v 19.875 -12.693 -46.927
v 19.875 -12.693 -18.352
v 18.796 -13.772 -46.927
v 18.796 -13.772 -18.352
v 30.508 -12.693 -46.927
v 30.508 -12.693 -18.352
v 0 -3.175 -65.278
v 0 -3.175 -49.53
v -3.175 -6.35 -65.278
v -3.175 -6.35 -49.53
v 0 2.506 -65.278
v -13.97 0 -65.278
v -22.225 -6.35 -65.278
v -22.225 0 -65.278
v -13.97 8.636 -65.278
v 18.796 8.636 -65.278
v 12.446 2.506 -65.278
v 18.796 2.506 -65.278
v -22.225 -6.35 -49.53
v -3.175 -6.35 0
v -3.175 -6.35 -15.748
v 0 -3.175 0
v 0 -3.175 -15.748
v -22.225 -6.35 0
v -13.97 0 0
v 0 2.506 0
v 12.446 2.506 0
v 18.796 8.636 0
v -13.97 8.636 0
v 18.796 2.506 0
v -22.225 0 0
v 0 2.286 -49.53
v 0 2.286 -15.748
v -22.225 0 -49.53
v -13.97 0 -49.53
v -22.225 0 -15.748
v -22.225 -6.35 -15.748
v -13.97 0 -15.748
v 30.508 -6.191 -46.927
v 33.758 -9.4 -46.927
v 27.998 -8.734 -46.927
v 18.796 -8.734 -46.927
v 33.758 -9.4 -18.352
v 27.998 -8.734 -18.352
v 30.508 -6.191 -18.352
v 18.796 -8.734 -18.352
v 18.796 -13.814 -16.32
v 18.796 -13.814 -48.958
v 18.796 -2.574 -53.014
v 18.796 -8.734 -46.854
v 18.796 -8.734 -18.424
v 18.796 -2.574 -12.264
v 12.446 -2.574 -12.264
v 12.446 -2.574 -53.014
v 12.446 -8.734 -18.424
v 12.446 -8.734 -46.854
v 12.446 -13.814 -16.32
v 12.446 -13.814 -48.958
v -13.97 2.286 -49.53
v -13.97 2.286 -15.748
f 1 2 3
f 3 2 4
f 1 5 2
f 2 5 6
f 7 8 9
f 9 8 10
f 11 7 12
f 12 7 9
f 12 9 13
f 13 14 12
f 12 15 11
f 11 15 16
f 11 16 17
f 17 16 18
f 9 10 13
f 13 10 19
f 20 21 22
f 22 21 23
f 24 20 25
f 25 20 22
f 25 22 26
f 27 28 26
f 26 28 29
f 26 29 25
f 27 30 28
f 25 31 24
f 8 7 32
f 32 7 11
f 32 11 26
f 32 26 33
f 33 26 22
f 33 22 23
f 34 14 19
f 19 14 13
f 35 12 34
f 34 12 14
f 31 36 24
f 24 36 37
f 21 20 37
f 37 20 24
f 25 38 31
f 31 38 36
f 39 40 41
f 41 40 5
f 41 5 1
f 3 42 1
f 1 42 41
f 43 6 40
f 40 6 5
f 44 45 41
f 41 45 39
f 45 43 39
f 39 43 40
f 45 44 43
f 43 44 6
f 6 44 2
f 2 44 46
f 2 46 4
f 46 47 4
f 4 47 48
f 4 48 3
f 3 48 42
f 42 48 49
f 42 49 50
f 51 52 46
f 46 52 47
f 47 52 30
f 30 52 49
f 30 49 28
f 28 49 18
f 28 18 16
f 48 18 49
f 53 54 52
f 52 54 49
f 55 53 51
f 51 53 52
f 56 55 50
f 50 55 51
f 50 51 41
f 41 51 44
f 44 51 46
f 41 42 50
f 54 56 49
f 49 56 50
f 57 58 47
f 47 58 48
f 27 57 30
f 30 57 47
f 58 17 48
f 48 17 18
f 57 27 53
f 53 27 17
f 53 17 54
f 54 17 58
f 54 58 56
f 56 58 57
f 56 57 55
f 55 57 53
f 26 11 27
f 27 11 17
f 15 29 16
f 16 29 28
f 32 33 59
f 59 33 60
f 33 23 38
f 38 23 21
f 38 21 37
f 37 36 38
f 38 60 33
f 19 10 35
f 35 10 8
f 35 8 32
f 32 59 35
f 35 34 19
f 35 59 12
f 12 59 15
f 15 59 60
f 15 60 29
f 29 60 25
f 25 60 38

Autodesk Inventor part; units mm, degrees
ref_plane "YZ Plane" through (0, 0, 0) normal (1, 0, 0) x (0, 1, 0)
ref_plane "XZ Plane" through (0, 0, 0) normal (0, 1, 0) x (-1, 0, 0)
ref_plane "XY Plane" through (0, 0, 0) normal (0, 0, 1) x (1, 0, 0)
sketch "Sketch1" plane through (0, 0, 0) normal (0, 1, 0) x (-1, 0, 0)
  line L0 (0, 0) -> (13.97, 0)
  line L1 (13.97, 0) -> (13.97, -15.748)
  line L2 (13.97, -15.748) -> (0, -15.748)
  line L3 (0, -15.748) -> (0, 0)
  line L4 (13.97, -49.53) -> (0, -49.53)
  line L5 (0, -49.53) -> (0, -65.278)
  line L6 (0, -65.278) -> (13.97, -65.278)
  line L7 (13.97, -65.278) -> (13.97, -49.53)
  dimension "d0" = 13.97
  dimension "d1" = 15.748
  dimension "d2" = 15.748
  dimension "d3" = 33.782
extrude "Extrusion1" add sketch "Sketch1" along normal blind 2.286
sketch "Sketch2" plane through (0, 2.286, 0) normal (0, 1, 0) x (1, 0, 0)
  line L0 (-13.97, 15.748) -> (-13.97, 0) projected
  line L1 (-13.97, 0) -> (0, 0)
  line L2 (0, 0) -> (0, 65.278)
  line L3 (0, 65.278) -> (-13.97, 65.278)
  line L4 (-13.97, 65.278) -> (-13.97, 0)
  point P0 (0, 0)
extrude "Extrusion2" add sketch "Sketch2" along normal blind 6.35
sketch "Sketch3" plane through (0, 0, -49.53) normal (1, 0, 0) x (0, 0, -1)
  line L0 (-49.53, 8.636) -> (15.748, 8.636) projected
  line L1 (15.748, 0) -> (15.748, 8.636) projected
  line L2 (-49.53, 8.636) -> (15.748, 8.636)
  line L3 (15.748, 8.636) -> (15.748, 2.5059)
  line L4 (15.748, 2.5059) -> (-49.53, 2.5059)
  line L5 (-49.53, 2.5059) -> (-49.53, 8.636)
  point P0 (-49.53, 0)
extrude "Extrusion3" add sketch "Sketch3" along normal blind 12.446
sketch "Sketch4" plane through (12.446, 0, -49.53) normal (1, 0, 0) x (0, 0, -1)
  line L0 (15.748, 8.636) -> (-49.53, 8.636) projected
  line L1 (-49.53, 8.636) -> (15.748, 8.636)
  line L2 (15.748, 8.636) -> (15.748, 2.5059)
  line L3 (15.748, 2.5059) -> (-49.53, 2.5059)
  line L4 (-49.53, 0) -> (-49.53, 8.636) projected
  line L5 (-49.53, 8.636) -> (-49.53, 2.5059)
  line L6 (-49.53, 2.5059) -> (-24.0466, 2.5059) construction
  line L7 (-16.891, 8.636) -> (-16.891, -118.364) construction
  line L8 (15.748, 2.5059) -> (-49.53, 2.5059) projected
  line L9 (-49.53, 2.5059) -> (-16.891, -30.1331)
  line L10 (-49.53, 2.5059) -> (-3.3715, 2.5059) construction
  line L11 (-16.891, -30.1331) -> (15.748, 2.5059)
  line L12 (-33.2105, -13.8136) -> (-0.5715, -13.8136)
  line L13 (-16.891, -8.7336) -> (-2.6757, -8.7336)
  line L14 (-49.53, 2.5059) -> (15.748, 2.5059) projected
  line L15 (-2.6757, -8.7336) -> (3.4838, -2.5741)
  line L16 (3.4838, -2.5741) -> (-36.2655, -2.5741)
  line L17 (-30.106, -8.7336) -> (-16.891, -8.7336)
  line L18 (-16.891, -8.7336) -> (-31.1063, -8.7336)
  line L19 (-31.1063, -8.7336) -> (-37.2658, -2.5741)
  line L20 (-37.2658, -2.5741) -> (2.4835, -2.5741)
  point P0 (-30.106, -8.7336)
  point P1 (-36.2655, -2.5741)
  dimension "d13" = 127
  dimension "d14" = 45
  dimension "d15" = 5.08
  dimension "d16" = 5.08
  dimension "d17" = 5.08
extrude "Extrusion4" add sketch "Sketch4" along normal blind 6.35 contours L2 L3 L4 L0 | L11 L12 L9 L3
sketch "Sketch5" plane through (18.796, 0, -49.53) normal (1, 0, 0) x (0, 0, -1)
  line L0 (-33.2105, -13.8136) -> (-0.5715, -13.8136) projected
  line L1 (-33.2105, -13.8136) -> (-0.5715, -13.8136)
  line L2 (-0.5715, -13.8136) -> (-0.5715, -8.8161)
  line L3 (-0.5715, -8.8161) -> (-33.2105, -8.8161)
  line L4 (-33.2105, -8.8161) -> (-33.2105, -13.8136)
  point P0 (-49.53, 0)
ref_plane "Work Plane1" through (-13.97, 0, -32.639) normal (0, 0, 1) x (1, 0, 0)
sketch "Sketch6" plane through (-13.97, 0, -32.639) normal (0, 0, 1) x (1, 0, 0)
  line L0 (26.416, -8.7336) -> (32.766, -8.7336) projected
  line L1 (32.766, -8.7336) -> (41.9683, -8.7336)
  line L2 (41.9683, -8.7336) -> (44.4776, -6.1913)
  line L3 (44.4776, -6.1913) -> (47.7281, -9.3996)
  line L4 (47.7281, -9.3996) -> (44.4776, -12.6928)
  line L5 (44.4776, -12.6928) -> (32.766, -12.6928)
  line L6 (32.766, -8.7336) -> (32.766, -12.6928)
  line L7 (32.766, 2.5059) -> (32.766, -13.8136) projected
  point P0 (13.97, 0)
extrude "Extrusion5" add sketch "Sketch6" along normal mid plane 28.575
sketch "Sketch7" plane through (0, 0, 0) normal (0, -1, 0) x (1, 0, 0)
  line L0 (0, -65.278) -> (0, 0) projected
  line L1 (0, -65.278) -> (-22.225, -65.278)
  line L2 (-22.225, -65.278) -> (-22.225, -49.53)
  line L3 (-22.225, -49.53) -> (0, -49.53)
  line L4 (0, -49.53) -> (0, -65.278)
  line L5 (-13.97, -65.278) -> (-13.97, 0) construction
  line L6 (-13.97, -32.639) -> (9.5461, -32.639) construction
  line L7 (0, 0) -> (0, -65.278)
  line L8 (0, 0) -> (-22.225, 0)
  line L9 (-22.225, 0) -> (-22.225, -15.748)
  line L10 (-22.225, -15.748) -> (0, -15.748)
  point P0 (0, -49.53)
  point P1 (0, -15.748)
  dimension "d24" = 22.225
extrude "Extrusion6" add sketch "Sketch7" along normal blind 6.35
chamfer "Chamfer1" distance 3.175 angle 45 2 edges at (0, -6.35, -7.874) (0, -6.35, -57.404)
chamfer "Chamfer2" distance 1.0795 angle 45 1 edges at (18.796, -12.6928, -32.639)
properties part number "FRC Pit Hook"
